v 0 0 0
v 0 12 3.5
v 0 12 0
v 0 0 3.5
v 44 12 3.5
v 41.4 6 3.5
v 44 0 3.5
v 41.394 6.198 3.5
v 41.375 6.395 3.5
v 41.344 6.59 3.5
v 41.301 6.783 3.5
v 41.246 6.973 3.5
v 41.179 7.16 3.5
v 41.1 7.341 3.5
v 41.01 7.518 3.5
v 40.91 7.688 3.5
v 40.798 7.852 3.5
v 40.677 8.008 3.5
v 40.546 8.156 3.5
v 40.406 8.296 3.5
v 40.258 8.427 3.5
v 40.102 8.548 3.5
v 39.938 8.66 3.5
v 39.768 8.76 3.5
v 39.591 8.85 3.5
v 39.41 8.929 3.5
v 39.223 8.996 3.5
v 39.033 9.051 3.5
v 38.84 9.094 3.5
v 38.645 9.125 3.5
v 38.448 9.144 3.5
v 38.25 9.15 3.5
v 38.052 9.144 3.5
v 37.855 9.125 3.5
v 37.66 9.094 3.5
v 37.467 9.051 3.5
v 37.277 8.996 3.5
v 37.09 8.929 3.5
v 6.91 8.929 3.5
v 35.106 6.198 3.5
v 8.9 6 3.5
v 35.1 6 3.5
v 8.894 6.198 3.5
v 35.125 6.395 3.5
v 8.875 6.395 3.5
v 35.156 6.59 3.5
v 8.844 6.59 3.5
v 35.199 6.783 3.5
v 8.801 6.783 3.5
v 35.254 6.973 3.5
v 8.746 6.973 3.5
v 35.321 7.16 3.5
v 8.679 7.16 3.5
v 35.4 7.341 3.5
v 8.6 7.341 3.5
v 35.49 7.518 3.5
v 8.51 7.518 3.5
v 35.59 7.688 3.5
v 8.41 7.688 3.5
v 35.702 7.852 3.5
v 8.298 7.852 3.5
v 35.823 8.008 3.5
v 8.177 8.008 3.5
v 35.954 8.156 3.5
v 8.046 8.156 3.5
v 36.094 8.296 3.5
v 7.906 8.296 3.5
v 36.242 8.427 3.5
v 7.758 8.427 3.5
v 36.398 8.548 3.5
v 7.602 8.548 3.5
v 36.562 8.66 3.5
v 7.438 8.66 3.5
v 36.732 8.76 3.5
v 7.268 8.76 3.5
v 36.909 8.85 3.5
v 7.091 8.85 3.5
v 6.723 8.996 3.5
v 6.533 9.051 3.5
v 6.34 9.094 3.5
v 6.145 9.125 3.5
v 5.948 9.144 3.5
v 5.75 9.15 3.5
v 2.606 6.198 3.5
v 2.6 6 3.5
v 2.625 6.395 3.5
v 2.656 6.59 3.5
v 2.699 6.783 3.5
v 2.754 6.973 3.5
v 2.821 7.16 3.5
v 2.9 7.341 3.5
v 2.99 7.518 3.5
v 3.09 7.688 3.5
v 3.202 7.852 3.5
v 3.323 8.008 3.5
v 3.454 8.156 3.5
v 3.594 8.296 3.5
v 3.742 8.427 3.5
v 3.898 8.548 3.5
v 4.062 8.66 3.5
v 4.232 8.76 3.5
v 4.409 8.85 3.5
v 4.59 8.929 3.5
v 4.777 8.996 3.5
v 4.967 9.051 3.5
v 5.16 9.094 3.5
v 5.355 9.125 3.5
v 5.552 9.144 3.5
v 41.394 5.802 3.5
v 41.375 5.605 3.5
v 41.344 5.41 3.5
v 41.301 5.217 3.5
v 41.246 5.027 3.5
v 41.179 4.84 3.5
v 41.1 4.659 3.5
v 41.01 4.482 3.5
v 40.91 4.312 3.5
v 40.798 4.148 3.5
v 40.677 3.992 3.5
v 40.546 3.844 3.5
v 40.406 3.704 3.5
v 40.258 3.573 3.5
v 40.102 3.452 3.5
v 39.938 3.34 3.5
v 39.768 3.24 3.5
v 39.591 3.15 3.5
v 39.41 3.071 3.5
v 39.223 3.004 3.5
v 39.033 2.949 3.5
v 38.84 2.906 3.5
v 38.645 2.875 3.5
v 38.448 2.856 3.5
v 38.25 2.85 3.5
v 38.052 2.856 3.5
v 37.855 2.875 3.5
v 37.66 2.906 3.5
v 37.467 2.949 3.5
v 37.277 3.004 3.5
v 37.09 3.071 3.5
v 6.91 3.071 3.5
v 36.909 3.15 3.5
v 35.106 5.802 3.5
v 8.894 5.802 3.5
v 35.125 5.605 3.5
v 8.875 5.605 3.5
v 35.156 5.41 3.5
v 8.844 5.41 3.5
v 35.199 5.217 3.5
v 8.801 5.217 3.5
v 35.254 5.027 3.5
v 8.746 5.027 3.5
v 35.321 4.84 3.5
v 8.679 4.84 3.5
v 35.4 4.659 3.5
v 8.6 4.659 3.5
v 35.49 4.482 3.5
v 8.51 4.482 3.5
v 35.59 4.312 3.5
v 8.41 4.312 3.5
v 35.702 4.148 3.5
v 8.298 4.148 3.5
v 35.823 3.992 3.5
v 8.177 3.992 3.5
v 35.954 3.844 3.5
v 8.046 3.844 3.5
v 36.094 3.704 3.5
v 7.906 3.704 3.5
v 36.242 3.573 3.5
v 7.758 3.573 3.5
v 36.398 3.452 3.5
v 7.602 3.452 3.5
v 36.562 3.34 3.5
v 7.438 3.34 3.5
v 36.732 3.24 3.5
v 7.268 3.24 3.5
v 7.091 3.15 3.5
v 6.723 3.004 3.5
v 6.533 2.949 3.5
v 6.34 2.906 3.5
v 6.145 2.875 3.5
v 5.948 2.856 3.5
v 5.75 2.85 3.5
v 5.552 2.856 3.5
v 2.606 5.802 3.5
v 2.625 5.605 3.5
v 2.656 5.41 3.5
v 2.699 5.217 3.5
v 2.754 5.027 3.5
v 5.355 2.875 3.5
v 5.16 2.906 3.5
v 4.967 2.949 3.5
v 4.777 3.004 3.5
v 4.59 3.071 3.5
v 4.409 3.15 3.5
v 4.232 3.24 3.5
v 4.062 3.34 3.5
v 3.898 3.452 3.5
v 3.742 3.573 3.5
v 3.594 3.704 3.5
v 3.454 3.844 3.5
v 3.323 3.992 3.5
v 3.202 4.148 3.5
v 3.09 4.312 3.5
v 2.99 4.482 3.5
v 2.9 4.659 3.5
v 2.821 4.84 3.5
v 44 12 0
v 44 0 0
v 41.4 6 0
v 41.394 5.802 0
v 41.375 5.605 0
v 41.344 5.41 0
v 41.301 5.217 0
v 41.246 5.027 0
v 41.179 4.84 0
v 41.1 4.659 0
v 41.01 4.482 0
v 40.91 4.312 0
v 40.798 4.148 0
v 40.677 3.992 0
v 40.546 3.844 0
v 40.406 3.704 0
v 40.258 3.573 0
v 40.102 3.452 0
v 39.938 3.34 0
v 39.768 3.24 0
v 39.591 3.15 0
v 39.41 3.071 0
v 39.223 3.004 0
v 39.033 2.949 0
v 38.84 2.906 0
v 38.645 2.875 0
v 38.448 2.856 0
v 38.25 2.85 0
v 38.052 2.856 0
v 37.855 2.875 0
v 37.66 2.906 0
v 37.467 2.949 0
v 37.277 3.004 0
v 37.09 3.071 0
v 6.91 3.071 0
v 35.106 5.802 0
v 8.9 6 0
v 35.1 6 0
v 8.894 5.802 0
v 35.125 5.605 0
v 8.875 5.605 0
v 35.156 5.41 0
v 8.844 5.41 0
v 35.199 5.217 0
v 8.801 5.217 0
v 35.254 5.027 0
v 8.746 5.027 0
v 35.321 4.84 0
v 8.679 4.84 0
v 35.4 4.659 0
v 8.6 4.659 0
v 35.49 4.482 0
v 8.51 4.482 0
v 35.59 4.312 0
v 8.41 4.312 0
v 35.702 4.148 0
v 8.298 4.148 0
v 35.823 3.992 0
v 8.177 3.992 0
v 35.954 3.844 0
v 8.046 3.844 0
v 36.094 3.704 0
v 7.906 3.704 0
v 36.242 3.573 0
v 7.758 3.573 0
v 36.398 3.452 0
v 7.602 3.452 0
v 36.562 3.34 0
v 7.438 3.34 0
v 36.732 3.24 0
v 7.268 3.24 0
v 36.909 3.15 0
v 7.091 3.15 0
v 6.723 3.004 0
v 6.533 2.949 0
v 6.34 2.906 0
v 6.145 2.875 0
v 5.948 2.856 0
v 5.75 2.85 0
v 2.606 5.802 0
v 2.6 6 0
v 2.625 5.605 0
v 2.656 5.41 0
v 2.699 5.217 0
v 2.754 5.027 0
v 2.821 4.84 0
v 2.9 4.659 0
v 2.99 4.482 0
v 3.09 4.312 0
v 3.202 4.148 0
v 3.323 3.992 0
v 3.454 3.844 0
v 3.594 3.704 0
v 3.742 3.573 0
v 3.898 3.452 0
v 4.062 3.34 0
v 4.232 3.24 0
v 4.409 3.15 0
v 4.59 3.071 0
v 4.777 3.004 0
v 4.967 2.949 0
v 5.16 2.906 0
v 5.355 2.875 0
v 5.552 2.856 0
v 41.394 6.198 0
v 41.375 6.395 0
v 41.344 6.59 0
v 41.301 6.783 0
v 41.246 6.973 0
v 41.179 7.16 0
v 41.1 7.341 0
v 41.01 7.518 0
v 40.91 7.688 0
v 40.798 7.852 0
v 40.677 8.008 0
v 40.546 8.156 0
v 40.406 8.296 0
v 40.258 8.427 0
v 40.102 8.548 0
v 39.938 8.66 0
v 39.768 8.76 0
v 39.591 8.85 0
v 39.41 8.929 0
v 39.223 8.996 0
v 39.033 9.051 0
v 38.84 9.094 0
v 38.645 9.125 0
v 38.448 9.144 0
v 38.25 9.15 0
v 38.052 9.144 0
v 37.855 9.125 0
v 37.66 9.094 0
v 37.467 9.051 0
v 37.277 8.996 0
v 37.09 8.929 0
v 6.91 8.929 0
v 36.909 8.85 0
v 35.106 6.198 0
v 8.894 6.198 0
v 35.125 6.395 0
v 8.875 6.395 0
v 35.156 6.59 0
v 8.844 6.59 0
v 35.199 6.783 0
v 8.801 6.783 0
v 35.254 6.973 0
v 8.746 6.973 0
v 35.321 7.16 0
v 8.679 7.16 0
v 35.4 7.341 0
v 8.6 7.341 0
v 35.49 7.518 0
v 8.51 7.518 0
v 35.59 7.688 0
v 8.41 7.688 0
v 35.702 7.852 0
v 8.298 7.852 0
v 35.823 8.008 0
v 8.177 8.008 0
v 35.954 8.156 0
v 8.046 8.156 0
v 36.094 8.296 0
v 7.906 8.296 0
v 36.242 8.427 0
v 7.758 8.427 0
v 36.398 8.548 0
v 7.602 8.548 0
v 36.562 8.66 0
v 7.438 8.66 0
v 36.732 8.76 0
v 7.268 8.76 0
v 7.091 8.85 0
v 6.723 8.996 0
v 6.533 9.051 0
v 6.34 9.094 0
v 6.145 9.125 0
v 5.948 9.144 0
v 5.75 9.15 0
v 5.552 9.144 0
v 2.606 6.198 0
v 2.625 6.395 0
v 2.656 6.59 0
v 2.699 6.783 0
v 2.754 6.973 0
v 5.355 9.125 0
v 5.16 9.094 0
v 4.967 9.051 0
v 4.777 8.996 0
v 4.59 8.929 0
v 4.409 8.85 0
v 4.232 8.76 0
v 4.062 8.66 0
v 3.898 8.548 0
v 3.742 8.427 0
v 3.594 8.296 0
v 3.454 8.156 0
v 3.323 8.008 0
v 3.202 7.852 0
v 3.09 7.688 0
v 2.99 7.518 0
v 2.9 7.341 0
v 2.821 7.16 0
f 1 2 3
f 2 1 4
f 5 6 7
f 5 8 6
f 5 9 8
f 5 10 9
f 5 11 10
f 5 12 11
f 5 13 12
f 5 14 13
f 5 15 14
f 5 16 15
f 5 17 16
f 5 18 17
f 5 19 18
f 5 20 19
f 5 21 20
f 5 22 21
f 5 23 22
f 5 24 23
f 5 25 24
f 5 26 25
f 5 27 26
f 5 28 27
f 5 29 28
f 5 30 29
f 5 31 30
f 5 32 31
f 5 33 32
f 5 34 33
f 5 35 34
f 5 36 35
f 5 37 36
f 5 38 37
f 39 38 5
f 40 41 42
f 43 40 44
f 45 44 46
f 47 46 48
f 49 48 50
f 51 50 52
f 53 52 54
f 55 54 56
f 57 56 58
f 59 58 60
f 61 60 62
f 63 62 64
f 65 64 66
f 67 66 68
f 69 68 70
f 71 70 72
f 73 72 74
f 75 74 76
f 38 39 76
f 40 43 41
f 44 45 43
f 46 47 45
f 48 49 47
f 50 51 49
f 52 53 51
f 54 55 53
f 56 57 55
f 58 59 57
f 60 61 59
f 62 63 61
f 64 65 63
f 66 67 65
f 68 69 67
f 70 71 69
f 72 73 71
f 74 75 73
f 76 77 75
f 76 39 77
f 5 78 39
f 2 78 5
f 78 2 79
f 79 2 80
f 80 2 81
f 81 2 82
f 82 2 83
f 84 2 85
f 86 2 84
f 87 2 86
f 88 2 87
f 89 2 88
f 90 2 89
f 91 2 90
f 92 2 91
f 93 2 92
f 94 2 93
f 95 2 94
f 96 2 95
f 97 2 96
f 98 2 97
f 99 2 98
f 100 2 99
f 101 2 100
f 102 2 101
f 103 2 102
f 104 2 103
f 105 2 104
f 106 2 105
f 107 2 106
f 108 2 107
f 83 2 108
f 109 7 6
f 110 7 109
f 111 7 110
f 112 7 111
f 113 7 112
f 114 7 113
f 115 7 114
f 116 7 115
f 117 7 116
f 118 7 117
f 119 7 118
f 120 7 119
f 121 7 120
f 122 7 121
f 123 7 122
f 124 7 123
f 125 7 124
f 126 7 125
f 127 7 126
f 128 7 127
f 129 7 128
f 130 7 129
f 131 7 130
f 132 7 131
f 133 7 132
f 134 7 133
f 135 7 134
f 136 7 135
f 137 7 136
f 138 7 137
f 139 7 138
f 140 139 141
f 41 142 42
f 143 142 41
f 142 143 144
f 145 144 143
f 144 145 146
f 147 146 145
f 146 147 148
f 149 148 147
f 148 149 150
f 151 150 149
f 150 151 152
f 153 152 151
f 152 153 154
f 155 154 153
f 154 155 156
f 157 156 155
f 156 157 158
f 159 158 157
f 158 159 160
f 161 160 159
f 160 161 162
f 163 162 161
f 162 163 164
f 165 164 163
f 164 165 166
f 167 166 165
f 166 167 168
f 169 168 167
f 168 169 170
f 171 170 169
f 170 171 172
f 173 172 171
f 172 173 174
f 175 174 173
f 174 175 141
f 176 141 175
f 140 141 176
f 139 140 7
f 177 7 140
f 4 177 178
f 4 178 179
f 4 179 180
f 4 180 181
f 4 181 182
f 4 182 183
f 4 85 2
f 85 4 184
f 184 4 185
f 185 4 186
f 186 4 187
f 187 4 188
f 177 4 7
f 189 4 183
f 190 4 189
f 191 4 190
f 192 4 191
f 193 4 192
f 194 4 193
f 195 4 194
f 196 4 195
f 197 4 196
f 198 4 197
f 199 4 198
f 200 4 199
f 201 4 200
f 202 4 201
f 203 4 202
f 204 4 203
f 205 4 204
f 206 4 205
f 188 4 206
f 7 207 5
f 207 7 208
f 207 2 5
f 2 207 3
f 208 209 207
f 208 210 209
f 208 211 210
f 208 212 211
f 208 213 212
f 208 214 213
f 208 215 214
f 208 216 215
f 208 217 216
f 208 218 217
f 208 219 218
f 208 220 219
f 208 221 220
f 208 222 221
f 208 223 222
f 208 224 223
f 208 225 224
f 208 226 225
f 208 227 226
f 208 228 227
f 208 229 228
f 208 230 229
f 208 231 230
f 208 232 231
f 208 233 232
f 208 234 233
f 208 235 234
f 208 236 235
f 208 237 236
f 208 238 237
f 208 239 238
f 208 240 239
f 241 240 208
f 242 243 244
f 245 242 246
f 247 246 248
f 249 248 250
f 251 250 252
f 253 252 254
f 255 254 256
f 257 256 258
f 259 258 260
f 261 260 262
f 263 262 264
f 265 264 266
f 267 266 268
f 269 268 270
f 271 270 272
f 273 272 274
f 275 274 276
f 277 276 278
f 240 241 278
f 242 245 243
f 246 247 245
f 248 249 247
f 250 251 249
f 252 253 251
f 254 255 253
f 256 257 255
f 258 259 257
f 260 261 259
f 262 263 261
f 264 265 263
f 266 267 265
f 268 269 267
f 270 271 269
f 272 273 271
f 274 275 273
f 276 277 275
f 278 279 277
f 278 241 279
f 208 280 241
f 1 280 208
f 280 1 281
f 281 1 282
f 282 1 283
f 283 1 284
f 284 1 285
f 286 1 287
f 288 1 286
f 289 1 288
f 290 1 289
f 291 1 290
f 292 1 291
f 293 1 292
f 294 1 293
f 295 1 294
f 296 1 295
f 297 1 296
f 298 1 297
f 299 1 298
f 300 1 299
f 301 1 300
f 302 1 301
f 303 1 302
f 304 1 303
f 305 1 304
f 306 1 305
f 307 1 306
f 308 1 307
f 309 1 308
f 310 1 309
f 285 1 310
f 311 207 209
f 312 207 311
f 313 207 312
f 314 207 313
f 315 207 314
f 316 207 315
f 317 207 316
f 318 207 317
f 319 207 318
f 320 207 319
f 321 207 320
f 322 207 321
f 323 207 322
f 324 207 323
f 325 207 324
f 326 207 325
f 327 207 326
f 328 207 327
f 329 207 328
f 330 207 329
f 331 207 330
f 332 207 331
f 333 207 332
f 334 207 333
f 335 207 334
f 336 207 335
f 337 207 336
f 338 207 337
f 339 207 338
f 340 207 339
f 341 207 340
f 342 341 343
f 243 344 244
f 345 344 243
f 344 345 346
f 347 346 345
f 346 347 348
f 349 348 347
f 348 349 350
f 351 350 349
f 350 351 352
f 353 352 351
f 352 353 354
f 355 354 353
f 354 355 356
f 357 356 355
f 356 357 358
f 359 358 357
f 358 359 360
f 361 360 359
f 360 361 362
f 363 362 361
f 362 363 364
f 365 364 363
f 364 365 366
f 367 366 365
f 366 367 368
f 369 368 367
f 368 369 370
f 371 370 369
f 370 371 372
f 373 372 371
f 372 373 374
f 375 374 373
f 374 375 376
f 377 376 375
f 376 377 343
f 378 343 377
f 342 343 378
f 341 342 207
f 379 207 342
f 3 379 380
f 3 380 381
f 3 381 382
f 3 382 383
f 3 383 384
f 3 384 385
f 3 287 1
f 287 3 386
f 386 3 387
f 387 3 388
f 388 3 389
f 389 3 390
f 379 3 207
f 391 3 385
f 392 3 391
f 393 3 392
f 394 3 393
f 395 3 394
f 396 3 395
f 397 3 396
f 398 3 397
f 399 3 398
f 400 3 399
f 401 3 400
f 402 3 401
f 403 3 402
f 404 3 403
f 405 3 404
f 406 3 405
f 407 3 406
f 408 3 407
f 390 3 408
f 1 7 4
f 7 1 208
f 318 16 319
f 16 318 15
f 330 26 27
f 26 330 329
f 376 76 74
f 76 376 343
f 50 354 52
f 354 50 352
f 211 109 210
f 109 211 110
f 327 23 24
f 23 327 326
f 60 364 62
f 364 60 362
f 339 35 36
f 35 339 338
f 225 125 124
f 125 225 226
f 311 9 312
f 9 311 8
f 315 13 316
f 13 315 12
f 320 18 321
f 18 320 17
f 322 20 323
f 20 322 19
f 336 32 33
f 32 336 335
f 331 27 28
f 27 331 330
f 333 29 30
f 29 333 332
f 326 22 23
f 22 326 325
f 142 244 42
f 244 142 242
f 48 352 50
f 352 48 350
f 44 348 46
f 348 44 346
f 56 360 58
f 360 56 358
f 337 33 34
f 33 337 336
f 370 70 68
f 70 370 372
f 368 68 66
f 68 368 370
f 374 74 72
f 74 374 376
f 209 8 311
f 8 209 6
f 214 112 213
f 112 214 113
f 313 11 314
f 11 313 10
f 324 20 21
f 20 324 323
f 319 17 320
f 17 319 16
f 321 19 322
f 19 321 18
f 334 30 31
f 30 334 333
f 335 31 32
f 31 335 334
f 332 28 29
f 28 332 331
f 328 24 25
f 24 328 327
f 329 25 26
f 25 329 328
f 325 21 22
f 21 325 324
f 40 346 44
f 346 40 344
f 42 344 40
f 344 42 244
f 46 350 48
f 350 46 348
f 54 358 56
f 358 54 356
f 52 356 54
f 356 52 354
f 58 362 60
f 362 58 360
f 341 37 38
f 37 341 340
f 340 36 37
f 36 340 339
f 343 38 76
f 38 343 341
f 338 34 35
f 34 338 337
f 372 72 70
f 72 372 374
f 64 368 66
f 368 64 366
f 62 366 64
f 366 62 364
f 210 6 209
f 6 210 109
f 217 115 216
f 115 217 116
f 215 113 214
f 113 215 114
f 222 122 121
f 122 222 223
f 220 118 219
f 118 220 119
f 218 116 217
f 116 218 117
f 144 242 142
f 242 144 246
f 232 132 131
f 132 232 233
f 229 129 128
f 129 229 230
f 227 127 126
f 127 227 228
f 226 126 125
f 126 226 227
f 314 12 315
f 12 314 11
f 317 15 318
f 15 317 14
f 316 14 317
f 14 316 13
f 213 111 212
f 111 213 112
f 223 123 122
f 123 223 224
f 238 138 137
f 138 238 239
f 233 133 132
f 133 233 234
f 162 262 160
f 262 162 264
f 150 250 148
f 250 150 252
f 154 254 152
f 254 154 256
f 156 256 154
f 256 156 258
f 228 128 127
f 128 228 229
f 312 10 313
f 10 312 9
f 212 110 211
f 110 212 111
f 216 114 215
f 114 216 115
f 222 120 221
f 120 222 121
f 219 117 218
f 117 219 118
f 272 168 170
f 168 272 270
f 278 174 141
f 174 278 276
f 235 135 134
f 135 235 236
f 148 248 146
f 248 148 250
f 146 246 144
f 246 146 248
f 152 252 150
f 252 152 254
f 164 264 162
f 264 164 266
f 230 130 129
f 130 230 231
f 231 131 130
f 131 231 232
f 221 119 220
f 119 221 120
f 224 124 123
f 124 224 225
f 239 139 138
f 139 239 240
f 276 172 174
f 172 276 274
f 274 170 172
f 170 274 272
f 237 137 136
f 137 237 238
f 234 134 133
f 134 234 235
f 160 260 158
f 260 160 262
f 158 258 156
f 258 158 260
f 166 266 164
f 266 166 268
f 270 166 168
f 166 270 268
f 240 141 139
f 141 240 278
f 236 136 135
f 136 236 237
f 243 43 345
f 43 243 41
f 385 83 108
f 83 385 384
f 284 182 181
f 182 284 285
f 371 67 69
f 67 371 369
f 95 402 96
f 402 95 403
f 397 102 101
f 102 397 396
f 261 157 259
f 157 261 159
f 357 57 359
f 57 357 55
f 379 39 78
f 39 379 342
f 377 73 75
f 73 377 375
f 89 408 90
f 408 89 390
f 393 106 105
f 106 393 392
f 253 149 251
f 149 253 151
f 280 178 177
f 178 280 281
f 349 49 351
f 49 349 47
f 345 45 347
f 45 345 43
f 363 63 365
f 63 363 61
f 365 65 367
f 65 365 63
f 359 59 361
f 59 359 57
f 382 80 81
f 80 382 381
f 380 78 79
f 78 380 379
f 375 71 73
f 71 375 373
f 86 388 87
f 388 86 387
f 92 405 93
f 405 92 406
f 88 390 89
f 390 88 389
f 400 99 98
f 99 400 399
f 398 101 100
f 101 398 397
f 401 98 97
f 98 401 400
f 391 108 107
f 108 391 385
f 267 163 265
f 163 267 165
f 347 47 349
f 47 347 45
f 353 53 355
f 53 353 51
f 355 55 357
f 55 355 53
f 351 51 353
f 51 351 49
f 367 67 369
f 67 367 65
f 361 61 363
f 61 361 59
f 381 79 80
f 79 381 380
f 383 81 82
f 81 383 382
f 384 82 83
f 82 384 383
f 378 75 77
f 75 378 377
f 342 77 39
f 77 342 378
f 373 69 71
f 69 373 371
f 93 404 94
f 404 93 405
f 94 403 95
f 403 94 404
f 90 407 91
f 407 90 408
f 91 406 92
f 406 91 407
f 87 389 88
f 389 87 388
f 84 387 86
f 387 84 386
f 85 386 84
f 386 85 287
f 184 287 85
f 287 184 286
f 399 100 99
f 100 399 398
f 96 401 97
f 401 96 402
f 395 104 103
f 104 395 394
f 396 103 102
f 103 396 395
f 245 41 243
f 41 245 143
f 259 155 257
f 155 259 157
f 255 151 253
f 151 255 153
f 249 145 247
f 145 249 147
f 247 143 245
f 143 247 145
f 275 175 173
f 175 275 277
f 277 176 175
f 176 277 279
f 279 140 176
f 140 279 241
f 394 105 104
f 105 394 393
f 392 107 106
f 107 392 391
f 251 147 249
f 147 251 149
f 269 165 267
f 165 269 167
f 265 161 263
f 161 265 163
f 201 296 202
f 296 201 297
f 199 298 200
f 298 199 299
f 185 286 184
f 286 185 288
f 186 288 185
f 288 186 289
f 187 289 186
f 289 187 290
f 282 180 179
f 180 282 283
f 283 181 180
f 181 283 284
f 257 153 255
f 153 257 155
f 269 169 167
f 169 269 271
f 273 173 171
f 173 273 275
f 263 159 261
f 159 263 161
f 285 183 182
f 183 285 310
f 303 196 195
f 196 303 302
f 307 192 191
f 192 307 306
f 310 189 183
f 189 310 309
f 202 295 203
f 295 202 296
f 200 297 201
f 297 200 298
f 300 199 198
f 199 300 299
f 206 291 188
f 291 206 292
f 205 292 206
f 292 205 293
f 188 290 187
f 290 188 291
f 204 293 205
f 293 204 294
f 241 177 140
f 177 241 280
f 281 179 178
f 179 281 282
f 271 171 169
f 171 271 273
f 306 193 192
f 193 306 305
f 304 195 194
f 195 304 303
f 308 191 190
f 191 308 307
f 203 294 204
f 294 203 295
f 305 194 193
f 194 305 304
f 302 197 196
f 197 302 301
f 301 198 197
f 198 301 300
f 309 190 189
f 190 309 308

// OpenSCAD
$fn=100;

module SMASpacer() {
    // Hole 6.3mm - Spacing 32.5mm
    difference(){
        cube([44, 12, 3.5]);
        translate([22 + 32.5 / 2, 6, -1]) rotate([0, 0, 0]) {
            cylinder(h=5, d=6.3);
        }
        translate([22 - 32.5 / 2, 6, -1]) rotate([0, 0, 0]) {
            cylinder(h=5, d=6.3);
        }
    }
}

SMASpacer();
